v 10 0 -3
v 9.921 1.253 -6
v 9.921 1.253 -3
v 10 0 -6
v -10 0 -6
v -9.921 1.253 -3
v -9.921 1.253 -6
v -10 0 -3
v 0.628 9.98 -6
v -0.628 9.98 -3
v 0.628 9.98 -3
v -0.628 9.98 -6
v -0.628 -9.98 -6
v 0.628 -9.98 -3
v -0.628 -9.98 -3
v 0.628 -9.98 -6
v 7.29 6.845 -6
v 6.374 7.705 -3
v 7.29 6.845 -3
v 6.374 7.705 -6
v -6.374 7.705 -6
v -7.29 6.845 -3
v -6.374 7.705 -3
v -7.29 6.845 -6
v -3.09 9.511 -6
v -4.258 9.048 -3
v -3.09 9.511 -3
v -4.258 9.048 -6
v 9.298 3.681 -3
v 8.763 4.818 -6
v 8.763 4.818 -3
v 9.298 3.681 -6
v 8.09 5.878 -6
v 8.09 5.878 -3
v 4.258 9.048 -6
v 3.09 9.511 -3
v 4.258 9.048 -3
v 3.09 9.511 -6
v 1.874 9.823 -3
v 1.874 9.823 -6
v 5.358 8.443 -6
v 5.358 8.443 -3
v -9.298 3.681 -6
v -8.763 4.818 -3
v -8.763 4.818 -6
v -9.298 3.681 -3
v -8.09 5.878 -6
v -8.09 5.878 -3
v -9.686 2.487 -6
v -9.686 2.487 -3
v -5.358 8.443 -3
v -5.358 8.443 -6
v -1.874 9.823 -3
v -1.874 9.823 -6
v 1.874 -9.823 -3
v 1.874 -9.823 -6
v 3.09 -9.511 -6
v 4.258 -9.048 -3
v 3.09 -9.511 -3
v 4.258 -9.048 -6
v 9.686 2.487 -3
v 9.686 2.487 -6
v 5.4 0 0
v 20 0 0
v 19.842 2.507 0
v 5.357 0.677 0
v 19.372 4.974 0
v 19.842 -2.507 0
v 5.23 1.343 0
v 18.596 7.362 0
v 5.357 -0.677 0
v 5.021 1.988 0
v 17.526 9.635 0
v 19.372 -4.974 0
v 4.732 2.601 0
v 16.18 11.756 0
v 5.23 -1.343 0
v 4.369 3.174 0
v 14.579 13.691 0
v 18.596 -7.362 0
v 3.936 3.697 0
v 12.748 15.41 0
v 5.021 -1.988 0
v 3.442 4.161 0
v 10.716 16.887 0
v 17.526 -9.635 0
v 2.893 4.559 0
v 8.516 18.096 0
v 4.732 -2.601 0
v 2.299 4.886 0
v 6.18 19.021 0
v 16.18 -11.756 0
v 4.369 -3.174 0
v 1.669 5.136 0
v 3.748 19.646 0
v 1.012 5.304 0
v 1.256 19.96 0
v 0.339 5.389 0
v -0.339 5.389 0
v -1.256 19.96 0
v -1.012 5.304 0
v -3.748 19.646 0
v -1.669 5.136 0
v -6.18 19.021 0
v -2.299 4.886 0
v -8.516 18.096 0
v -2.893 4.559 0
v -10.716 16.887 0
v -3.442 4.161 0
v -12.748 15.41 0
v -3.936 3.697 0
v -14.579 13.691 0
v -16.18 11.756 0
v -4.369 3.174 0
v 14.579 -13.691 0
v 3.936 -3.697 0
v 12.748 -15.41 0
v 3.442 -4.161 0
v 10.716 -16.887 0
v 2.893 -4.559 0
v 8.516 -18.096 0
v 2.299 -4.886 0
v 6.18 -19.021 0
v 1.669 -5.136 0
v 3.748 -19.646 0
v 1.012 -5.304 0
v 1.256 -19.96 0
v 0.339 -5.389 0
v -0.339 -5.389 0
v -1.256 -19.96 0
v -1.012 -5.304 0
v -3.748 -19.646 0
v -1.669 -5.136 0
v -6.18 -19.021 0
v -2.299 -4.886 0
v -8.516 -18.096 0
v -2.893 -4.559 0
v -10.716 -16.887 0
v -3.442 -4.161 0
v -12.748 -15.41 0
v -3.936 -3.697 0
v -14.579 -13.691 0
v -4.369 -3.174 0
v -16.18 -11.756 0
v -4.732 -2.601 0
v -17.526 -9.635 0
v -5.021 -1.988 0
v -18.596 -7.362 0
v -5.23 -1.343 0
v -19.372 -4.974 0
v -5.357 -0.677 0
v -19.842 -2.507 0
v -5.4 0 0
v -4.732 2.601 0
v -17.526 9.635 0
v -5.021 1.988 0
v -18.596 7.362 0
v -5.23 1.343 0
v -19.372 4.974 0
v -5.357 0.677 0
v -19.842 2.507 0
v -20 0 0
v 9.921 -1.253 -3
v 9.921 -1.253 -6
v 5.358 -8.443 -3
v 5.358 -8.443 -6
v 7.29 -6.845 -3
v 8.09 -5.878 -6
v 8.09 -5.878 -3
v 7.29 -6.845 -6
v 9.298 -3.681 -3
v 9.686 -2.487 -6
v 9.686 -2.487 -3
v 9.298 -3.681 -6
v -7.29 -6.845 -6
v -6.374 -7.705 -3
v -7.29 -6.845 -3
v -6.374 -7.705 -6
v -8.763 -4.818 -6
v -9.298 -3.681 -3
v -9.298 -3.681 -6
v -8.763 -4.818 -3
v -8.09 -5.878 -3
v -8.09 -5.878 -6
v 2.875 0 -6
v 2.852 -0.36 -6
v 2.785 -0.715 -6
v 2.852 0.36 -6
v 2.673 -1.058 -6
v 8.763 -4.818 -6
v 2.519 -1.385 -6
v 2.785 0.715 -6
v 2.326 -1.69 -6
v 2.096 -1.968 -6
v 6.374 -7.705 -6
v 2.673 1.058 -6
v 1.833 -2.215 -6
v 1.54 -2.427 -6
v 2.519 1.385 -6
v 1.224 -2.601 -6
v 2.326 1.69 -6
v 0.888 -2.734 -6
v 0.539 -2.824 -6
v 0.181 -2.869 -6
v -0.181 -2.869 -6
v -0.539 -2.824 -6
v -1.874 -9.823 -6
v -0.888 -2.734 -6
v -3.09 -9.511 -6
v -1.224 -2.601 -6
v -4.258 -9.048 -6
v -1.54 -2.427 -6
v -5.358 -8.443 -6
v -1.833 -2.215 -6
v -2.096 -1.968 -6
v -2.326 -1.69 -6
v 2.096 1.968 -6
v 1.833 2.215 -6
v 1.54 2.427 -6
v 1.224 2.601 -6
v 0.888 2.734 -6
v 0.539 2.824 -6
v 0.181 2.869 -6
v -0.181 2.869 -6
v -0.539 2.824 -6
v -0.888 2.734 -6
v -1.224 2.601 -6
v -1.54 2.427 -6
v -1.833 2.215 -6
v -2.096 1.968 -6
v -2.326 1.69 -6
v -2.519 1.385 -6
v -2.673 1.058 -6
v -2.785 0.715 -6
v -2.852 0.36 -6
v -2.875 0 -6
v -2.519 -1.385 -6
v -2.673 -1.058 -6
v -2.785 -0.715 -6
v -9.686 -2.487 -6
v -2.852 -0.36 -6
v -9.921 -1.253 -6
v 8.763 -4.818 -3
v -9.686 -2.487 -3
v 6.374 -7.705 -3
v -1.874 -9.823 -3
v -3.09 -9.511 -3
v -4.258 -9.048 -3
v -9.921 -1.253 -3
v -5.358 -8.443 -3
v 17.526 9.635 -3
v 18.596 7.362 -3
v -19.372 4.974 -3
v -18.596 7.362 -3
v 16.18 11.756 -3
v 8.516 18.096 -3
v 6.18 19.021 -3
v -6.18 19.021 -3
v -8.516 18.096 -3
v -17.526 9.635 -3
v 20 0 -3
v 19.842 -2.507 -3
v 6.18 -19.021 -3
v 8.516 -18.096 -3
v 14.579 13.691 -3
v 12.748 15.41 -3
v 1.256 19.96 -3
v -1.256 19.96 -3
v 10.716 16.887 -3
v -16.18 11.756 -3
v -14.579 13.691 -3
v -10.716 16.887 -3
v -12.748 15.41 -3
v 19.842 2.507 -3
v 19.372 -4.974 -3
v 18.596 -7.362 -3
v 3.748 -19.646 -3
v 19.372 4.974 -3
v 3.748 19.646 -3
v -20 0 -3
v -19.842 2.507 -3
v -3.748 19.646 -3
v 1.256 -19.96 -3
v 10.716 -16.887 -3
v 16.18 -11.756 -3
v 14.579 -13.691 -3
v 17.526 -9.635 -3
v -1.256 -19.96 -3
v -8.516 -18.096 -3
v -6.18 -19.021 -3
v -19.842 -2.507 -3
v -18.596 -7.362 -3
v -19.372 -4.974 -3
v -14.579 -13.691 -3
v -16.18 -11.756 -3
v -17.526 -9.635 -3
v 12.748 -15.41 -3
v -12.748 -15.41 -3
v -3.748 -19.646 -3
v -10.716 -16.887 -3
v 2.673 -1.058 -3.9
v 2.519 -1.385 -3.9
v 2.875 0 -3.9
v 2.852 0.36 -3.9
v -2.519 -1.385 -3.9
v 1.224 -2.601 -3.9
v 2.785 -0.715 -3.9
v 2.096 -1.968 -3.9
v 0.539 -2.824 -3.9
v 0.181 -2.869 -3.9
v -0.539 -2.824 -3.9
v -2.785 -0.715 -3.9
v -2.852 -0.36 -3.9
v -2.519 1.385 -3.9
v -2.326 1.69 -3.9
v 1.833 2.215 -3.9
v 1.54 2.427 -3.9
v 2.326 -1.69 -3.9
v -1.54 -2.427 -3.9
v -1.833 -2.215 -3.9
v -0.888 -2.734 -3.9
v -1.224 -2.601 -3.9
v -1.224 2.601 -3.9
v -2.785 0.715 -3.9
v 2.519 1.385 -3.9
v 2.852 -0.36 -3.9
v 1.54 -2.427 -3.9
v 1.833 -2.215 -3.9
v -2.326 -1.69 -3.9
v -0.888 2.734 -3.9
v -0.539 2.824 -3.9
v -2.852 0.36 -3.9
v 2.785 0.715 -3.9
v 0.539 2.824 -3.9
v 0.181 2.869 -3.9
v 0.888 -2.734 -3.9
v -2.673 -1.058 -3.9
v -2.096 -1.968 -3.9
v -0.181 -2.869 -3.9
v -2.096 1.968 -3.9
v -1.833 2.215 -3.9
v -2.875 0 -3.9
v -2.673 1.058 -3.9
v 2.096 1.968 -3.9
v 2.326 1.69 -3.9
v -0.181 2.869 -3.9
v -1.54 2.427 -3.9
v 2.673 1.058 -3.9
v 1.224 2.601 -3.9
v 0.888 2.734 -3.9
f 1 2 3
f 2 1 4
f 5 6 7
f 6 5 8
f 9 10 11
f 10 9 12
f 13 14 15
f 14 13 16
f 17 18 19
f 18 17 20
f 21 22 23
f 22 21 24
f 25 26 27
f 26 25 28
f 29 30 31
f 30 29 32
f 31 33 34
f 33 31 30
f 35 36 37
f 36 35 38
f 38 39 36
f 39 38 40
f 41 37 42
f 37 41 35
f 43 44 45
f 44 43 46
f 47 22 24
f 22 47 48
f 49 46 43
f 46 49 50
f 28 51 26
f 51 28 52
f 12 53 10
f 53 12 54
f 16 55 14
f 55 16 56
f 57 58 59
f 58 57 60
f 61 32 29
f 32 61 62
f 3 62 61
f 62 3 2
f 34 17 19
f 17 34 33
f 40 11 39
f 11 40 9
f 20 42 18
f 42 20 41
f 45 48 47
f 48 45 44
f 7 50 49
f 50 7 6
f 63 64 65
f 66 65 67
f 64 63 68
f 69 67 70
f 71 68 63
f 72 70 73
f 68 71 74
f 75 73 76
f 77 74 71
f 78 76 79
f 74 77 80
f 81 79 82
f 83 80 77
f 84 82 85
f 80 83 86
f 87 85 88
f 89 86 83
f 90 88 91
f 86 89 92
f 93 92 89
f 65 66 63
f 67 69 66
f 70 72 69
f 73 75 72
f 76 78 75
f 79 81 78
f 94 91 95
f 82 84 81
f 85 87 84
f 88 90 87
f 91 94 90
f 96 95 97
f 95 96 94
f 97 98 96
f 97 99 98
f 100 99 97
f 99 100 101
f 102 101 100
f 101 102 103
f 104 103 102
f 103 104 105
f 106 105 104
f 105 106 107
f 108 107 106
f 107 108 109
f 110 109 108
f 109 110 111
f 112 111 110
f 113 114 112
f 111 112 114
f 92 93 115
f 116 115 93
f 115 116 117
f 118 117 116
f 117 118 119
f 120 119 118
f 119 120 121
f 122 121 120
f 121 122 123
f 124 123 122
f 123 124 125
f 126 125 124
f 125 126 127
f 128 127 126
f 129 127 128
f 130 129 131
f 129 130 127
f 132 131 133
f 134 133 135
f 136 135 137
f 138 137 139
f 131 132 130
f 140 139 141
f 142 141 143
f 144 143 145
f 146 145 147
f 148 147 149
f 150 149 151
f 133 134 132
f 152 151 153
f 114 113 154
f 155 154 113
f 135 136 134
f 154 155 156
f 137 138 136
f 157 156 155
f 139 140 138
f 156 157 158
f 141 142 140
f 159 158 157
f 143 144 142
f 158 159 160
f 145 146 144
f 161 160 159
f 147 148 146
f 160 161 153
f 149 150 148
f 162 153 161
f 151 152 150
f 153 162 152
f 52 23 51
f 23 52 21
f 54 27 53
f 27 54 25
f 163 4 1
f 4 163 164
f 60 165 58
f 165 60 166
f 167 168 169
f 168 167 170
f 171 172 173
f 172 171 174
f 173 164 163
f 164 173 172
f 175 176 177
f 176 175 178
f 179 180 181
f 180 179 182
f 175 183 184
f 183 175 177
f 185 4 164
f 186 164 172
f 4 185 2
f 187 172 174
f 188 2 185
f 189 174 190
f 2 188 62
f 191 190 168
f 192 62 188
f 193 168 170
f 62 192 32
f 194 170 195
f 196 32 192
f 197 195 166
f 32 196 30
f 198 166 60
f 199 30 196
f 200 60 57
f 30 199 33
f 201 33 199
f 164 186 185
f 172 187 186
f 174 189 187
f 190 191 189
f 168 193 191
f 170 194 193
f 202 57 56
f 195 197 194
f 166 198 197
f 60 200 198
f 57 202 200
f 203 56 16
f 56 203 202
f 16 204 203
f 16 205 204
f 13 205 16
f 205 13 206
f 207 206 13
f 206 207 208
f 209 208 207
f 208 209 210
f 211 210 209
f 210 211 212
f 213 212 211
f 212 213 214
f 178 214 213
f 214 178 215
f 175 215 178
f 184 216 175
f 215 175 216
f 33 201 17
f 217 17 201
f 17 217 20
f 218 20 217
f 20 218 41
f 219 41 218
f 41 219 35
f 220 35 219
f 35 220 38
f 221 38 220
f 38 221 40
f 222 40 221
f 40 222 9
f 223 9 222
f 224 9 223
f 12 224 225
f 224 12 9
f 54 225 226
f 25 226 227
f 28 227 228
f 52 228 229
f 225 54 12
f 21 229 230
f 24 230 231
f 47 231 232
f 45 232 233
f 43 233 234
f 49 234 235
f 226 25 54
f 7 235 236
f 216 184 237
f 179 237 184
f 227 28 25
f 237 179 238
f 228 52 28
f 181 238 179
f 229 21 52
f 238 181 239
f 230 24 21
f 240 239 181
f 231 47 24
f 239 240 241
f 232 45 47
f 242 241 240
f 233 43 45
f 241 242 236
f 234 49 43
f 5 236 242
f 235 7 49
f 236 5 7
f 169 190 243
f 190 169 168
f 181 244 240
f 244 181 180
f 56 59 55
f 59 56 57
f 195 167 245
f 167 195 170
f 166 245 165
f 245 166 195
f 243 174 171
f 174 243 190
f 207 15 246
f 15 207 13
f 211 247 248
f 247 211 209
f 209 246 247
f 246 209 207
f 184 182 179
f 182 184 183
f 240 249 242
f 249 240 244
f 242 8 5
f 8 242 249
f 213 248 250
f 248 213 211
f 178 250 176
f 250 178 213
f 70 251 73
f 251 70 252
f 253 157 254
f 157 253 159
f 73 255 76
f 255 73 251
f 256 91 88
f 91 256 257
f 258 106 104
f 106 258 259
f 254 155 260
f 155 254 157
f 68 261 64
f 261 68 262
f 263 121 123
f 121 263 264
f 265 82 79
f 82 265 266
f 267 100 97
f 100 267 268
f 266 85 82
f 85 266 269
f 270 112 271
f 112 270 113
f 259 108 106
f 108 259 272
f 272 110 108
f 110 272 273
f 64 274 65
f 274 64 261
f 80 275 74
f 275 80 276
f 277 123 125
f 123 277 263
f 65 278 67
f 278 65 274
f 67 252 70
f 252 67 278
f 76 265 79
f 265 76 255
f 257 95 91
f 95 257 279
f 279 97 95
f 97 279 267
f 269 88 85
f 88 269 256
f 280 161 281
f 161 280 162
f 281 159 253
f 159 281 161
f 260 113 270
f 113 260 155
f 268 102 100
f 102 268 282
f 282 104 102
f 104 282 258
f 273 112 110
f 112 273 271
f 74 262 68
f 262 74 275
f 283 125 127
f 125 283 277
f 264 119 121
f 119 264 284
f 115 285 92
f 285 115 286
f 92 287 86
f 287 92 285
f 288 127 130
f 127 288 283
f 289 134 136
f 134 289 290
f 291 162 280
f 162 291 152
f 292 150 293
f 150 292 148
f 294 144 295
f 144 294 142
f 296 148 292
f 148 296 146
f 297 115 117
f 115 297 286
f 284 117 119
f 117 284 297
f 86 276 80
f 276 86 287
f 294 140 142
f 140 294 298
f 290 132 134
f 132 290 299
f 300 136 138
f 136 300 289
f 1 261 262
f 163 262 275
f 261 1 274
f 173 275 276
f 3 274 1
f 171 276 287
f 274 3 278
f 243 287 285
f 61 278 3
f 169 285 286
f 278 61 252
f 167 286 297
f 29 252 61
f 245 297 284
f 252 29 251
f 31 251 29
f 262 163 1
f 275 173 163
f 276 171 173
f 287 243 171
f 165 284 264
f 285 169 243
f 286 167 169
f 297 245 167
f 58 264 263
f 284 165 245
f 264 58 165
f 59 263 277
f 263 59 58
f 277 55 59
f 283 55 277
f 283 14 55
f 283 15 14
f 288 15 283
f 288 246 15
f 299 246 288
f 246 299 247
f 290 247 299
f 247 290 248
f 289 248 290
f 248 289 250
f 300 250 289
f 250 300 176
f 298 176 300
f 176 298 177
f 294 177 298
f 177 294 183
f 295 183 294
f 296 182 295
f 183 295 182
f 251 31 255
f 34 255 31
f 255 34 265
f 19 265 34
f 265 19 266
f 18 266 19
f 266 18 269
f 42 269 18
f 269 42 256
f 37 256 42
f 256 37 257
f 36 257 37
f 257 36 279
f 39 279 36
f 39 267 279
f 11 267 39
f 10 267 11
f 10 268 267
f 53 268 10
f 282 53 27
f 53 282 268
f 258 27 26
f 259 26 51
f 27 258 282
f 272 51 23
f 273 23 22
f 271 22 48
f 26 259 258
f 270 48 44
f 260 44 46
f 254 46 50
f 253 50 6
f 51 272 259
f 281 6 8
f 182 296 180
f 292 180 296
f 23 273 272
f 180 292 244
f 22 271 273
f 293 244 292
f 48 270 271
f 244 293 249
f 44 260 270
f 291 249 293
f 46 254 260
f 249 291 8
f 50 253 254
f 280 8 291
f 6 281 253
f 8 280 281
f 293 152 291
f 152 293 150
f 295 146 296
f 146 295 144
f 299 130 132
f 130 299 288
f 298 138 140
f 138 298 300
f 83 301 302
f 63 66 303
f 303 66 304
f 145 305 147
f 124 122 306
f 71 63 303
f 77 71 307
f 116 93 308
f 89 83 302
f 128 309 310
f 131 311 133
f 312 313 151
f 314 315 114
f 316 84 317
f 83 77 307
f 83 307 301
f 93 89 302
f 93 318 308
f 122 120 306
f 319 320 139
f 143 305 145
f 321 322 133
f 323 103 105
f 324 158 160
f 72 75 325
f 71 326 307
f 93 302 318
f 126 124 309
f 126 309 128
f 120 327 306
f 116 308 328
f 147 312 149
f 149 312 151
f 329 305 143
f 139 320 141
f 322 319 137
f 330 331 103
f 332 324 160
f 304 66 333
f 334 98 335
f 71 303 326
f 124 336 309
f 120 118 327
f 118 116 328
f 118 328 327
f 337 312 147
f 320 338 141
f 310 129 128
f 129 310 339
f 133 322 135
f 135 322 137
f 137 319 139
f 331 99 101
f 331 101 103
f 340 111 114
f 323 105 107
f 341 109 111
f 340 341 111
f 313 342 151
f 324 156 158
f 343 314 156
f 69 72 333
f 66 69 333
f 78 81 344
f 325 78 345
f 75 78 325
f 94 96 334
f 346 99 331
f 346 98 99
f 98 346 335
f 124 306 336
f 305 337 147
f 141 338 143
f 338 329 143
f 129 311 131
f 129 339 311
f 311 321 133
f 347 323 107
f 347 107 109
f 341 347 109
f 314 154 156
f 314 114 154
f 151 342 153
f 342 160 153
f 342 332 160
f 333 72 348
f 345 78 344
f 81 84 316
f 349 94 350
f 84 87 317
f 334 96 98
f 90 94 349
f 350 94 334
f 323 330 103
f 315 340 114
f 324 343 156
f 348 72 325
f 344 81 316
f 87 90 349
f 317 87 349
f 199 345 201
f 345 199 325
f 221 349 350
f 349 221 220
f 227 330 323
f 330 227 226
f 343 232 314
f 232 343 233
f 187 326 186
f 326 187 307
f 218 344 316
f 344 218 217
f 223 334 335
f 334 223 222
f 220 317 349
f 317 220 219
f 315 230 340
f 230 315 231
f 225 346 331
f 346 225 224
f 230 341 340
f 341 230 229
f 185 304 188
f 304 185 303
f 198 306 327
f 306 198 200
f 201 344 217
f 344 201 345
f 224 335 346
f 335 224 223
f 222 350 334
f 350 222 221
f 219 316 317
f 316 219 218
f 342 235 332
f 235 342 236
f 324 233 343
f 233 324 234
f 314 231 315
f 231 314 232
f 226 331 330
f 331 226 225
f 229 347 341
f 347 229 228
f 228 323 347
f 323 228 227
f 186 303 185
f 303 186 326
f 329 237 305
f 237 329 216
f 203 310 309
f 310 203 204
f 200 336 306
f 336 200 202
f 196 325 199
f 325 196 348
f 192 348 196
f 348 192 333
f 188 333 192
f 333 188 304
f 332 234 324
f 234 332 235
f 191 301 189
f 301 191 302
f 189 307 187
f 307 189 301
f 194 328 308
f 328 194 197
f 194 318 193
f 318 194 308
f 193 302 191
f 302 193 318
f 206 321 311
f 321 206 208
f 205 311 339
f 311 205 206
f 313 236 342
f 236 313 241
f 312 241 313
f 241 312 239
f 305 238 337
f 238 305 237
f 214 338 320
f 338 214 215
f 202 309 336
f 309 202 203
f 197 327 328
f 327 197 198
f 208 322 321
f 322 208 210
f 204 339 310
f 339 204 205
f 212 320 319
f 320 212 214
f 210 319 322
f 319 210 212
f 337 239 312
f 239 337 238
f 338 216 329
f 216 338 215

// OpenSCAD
$fn = 50;


difference() {
	union() {
		translate(v = [0, 0, -6.0000000000]) {
			cylinder(h = 6, r = 10.0000000000);
		}
		translate(v = [0, 0, -3.0000000000]) {
			cylinder(h = 3, r = 20.0000000000);
		}
	}
	union() {
		translate(v = [0, 0, 0]) {
			rotate(a = [0, 0, 0]) {
				difference() {
					union() {
						#translate(v = [0, 0, -6.0000000000]) {
							cylinder(h = 6, r = 2.6000000000);
						}
						#translate(v = [0, 0, -3.9000000000]) {
							cylinder(h = 3.9000000000, r1 = 2.8750000000, r2 = 5.4000000000);
						}
						#translate(v = [0, 0, -6.0000000000]) {
							cylinder(h = 6, r = 2.8750000000);
						}
						#translate(v = [0, 0, -6.0000000000]) {
							cylinder(h = 6, r = 2.6000000000);
						}
					}
					union();
				}
			}
		}
	}
}
